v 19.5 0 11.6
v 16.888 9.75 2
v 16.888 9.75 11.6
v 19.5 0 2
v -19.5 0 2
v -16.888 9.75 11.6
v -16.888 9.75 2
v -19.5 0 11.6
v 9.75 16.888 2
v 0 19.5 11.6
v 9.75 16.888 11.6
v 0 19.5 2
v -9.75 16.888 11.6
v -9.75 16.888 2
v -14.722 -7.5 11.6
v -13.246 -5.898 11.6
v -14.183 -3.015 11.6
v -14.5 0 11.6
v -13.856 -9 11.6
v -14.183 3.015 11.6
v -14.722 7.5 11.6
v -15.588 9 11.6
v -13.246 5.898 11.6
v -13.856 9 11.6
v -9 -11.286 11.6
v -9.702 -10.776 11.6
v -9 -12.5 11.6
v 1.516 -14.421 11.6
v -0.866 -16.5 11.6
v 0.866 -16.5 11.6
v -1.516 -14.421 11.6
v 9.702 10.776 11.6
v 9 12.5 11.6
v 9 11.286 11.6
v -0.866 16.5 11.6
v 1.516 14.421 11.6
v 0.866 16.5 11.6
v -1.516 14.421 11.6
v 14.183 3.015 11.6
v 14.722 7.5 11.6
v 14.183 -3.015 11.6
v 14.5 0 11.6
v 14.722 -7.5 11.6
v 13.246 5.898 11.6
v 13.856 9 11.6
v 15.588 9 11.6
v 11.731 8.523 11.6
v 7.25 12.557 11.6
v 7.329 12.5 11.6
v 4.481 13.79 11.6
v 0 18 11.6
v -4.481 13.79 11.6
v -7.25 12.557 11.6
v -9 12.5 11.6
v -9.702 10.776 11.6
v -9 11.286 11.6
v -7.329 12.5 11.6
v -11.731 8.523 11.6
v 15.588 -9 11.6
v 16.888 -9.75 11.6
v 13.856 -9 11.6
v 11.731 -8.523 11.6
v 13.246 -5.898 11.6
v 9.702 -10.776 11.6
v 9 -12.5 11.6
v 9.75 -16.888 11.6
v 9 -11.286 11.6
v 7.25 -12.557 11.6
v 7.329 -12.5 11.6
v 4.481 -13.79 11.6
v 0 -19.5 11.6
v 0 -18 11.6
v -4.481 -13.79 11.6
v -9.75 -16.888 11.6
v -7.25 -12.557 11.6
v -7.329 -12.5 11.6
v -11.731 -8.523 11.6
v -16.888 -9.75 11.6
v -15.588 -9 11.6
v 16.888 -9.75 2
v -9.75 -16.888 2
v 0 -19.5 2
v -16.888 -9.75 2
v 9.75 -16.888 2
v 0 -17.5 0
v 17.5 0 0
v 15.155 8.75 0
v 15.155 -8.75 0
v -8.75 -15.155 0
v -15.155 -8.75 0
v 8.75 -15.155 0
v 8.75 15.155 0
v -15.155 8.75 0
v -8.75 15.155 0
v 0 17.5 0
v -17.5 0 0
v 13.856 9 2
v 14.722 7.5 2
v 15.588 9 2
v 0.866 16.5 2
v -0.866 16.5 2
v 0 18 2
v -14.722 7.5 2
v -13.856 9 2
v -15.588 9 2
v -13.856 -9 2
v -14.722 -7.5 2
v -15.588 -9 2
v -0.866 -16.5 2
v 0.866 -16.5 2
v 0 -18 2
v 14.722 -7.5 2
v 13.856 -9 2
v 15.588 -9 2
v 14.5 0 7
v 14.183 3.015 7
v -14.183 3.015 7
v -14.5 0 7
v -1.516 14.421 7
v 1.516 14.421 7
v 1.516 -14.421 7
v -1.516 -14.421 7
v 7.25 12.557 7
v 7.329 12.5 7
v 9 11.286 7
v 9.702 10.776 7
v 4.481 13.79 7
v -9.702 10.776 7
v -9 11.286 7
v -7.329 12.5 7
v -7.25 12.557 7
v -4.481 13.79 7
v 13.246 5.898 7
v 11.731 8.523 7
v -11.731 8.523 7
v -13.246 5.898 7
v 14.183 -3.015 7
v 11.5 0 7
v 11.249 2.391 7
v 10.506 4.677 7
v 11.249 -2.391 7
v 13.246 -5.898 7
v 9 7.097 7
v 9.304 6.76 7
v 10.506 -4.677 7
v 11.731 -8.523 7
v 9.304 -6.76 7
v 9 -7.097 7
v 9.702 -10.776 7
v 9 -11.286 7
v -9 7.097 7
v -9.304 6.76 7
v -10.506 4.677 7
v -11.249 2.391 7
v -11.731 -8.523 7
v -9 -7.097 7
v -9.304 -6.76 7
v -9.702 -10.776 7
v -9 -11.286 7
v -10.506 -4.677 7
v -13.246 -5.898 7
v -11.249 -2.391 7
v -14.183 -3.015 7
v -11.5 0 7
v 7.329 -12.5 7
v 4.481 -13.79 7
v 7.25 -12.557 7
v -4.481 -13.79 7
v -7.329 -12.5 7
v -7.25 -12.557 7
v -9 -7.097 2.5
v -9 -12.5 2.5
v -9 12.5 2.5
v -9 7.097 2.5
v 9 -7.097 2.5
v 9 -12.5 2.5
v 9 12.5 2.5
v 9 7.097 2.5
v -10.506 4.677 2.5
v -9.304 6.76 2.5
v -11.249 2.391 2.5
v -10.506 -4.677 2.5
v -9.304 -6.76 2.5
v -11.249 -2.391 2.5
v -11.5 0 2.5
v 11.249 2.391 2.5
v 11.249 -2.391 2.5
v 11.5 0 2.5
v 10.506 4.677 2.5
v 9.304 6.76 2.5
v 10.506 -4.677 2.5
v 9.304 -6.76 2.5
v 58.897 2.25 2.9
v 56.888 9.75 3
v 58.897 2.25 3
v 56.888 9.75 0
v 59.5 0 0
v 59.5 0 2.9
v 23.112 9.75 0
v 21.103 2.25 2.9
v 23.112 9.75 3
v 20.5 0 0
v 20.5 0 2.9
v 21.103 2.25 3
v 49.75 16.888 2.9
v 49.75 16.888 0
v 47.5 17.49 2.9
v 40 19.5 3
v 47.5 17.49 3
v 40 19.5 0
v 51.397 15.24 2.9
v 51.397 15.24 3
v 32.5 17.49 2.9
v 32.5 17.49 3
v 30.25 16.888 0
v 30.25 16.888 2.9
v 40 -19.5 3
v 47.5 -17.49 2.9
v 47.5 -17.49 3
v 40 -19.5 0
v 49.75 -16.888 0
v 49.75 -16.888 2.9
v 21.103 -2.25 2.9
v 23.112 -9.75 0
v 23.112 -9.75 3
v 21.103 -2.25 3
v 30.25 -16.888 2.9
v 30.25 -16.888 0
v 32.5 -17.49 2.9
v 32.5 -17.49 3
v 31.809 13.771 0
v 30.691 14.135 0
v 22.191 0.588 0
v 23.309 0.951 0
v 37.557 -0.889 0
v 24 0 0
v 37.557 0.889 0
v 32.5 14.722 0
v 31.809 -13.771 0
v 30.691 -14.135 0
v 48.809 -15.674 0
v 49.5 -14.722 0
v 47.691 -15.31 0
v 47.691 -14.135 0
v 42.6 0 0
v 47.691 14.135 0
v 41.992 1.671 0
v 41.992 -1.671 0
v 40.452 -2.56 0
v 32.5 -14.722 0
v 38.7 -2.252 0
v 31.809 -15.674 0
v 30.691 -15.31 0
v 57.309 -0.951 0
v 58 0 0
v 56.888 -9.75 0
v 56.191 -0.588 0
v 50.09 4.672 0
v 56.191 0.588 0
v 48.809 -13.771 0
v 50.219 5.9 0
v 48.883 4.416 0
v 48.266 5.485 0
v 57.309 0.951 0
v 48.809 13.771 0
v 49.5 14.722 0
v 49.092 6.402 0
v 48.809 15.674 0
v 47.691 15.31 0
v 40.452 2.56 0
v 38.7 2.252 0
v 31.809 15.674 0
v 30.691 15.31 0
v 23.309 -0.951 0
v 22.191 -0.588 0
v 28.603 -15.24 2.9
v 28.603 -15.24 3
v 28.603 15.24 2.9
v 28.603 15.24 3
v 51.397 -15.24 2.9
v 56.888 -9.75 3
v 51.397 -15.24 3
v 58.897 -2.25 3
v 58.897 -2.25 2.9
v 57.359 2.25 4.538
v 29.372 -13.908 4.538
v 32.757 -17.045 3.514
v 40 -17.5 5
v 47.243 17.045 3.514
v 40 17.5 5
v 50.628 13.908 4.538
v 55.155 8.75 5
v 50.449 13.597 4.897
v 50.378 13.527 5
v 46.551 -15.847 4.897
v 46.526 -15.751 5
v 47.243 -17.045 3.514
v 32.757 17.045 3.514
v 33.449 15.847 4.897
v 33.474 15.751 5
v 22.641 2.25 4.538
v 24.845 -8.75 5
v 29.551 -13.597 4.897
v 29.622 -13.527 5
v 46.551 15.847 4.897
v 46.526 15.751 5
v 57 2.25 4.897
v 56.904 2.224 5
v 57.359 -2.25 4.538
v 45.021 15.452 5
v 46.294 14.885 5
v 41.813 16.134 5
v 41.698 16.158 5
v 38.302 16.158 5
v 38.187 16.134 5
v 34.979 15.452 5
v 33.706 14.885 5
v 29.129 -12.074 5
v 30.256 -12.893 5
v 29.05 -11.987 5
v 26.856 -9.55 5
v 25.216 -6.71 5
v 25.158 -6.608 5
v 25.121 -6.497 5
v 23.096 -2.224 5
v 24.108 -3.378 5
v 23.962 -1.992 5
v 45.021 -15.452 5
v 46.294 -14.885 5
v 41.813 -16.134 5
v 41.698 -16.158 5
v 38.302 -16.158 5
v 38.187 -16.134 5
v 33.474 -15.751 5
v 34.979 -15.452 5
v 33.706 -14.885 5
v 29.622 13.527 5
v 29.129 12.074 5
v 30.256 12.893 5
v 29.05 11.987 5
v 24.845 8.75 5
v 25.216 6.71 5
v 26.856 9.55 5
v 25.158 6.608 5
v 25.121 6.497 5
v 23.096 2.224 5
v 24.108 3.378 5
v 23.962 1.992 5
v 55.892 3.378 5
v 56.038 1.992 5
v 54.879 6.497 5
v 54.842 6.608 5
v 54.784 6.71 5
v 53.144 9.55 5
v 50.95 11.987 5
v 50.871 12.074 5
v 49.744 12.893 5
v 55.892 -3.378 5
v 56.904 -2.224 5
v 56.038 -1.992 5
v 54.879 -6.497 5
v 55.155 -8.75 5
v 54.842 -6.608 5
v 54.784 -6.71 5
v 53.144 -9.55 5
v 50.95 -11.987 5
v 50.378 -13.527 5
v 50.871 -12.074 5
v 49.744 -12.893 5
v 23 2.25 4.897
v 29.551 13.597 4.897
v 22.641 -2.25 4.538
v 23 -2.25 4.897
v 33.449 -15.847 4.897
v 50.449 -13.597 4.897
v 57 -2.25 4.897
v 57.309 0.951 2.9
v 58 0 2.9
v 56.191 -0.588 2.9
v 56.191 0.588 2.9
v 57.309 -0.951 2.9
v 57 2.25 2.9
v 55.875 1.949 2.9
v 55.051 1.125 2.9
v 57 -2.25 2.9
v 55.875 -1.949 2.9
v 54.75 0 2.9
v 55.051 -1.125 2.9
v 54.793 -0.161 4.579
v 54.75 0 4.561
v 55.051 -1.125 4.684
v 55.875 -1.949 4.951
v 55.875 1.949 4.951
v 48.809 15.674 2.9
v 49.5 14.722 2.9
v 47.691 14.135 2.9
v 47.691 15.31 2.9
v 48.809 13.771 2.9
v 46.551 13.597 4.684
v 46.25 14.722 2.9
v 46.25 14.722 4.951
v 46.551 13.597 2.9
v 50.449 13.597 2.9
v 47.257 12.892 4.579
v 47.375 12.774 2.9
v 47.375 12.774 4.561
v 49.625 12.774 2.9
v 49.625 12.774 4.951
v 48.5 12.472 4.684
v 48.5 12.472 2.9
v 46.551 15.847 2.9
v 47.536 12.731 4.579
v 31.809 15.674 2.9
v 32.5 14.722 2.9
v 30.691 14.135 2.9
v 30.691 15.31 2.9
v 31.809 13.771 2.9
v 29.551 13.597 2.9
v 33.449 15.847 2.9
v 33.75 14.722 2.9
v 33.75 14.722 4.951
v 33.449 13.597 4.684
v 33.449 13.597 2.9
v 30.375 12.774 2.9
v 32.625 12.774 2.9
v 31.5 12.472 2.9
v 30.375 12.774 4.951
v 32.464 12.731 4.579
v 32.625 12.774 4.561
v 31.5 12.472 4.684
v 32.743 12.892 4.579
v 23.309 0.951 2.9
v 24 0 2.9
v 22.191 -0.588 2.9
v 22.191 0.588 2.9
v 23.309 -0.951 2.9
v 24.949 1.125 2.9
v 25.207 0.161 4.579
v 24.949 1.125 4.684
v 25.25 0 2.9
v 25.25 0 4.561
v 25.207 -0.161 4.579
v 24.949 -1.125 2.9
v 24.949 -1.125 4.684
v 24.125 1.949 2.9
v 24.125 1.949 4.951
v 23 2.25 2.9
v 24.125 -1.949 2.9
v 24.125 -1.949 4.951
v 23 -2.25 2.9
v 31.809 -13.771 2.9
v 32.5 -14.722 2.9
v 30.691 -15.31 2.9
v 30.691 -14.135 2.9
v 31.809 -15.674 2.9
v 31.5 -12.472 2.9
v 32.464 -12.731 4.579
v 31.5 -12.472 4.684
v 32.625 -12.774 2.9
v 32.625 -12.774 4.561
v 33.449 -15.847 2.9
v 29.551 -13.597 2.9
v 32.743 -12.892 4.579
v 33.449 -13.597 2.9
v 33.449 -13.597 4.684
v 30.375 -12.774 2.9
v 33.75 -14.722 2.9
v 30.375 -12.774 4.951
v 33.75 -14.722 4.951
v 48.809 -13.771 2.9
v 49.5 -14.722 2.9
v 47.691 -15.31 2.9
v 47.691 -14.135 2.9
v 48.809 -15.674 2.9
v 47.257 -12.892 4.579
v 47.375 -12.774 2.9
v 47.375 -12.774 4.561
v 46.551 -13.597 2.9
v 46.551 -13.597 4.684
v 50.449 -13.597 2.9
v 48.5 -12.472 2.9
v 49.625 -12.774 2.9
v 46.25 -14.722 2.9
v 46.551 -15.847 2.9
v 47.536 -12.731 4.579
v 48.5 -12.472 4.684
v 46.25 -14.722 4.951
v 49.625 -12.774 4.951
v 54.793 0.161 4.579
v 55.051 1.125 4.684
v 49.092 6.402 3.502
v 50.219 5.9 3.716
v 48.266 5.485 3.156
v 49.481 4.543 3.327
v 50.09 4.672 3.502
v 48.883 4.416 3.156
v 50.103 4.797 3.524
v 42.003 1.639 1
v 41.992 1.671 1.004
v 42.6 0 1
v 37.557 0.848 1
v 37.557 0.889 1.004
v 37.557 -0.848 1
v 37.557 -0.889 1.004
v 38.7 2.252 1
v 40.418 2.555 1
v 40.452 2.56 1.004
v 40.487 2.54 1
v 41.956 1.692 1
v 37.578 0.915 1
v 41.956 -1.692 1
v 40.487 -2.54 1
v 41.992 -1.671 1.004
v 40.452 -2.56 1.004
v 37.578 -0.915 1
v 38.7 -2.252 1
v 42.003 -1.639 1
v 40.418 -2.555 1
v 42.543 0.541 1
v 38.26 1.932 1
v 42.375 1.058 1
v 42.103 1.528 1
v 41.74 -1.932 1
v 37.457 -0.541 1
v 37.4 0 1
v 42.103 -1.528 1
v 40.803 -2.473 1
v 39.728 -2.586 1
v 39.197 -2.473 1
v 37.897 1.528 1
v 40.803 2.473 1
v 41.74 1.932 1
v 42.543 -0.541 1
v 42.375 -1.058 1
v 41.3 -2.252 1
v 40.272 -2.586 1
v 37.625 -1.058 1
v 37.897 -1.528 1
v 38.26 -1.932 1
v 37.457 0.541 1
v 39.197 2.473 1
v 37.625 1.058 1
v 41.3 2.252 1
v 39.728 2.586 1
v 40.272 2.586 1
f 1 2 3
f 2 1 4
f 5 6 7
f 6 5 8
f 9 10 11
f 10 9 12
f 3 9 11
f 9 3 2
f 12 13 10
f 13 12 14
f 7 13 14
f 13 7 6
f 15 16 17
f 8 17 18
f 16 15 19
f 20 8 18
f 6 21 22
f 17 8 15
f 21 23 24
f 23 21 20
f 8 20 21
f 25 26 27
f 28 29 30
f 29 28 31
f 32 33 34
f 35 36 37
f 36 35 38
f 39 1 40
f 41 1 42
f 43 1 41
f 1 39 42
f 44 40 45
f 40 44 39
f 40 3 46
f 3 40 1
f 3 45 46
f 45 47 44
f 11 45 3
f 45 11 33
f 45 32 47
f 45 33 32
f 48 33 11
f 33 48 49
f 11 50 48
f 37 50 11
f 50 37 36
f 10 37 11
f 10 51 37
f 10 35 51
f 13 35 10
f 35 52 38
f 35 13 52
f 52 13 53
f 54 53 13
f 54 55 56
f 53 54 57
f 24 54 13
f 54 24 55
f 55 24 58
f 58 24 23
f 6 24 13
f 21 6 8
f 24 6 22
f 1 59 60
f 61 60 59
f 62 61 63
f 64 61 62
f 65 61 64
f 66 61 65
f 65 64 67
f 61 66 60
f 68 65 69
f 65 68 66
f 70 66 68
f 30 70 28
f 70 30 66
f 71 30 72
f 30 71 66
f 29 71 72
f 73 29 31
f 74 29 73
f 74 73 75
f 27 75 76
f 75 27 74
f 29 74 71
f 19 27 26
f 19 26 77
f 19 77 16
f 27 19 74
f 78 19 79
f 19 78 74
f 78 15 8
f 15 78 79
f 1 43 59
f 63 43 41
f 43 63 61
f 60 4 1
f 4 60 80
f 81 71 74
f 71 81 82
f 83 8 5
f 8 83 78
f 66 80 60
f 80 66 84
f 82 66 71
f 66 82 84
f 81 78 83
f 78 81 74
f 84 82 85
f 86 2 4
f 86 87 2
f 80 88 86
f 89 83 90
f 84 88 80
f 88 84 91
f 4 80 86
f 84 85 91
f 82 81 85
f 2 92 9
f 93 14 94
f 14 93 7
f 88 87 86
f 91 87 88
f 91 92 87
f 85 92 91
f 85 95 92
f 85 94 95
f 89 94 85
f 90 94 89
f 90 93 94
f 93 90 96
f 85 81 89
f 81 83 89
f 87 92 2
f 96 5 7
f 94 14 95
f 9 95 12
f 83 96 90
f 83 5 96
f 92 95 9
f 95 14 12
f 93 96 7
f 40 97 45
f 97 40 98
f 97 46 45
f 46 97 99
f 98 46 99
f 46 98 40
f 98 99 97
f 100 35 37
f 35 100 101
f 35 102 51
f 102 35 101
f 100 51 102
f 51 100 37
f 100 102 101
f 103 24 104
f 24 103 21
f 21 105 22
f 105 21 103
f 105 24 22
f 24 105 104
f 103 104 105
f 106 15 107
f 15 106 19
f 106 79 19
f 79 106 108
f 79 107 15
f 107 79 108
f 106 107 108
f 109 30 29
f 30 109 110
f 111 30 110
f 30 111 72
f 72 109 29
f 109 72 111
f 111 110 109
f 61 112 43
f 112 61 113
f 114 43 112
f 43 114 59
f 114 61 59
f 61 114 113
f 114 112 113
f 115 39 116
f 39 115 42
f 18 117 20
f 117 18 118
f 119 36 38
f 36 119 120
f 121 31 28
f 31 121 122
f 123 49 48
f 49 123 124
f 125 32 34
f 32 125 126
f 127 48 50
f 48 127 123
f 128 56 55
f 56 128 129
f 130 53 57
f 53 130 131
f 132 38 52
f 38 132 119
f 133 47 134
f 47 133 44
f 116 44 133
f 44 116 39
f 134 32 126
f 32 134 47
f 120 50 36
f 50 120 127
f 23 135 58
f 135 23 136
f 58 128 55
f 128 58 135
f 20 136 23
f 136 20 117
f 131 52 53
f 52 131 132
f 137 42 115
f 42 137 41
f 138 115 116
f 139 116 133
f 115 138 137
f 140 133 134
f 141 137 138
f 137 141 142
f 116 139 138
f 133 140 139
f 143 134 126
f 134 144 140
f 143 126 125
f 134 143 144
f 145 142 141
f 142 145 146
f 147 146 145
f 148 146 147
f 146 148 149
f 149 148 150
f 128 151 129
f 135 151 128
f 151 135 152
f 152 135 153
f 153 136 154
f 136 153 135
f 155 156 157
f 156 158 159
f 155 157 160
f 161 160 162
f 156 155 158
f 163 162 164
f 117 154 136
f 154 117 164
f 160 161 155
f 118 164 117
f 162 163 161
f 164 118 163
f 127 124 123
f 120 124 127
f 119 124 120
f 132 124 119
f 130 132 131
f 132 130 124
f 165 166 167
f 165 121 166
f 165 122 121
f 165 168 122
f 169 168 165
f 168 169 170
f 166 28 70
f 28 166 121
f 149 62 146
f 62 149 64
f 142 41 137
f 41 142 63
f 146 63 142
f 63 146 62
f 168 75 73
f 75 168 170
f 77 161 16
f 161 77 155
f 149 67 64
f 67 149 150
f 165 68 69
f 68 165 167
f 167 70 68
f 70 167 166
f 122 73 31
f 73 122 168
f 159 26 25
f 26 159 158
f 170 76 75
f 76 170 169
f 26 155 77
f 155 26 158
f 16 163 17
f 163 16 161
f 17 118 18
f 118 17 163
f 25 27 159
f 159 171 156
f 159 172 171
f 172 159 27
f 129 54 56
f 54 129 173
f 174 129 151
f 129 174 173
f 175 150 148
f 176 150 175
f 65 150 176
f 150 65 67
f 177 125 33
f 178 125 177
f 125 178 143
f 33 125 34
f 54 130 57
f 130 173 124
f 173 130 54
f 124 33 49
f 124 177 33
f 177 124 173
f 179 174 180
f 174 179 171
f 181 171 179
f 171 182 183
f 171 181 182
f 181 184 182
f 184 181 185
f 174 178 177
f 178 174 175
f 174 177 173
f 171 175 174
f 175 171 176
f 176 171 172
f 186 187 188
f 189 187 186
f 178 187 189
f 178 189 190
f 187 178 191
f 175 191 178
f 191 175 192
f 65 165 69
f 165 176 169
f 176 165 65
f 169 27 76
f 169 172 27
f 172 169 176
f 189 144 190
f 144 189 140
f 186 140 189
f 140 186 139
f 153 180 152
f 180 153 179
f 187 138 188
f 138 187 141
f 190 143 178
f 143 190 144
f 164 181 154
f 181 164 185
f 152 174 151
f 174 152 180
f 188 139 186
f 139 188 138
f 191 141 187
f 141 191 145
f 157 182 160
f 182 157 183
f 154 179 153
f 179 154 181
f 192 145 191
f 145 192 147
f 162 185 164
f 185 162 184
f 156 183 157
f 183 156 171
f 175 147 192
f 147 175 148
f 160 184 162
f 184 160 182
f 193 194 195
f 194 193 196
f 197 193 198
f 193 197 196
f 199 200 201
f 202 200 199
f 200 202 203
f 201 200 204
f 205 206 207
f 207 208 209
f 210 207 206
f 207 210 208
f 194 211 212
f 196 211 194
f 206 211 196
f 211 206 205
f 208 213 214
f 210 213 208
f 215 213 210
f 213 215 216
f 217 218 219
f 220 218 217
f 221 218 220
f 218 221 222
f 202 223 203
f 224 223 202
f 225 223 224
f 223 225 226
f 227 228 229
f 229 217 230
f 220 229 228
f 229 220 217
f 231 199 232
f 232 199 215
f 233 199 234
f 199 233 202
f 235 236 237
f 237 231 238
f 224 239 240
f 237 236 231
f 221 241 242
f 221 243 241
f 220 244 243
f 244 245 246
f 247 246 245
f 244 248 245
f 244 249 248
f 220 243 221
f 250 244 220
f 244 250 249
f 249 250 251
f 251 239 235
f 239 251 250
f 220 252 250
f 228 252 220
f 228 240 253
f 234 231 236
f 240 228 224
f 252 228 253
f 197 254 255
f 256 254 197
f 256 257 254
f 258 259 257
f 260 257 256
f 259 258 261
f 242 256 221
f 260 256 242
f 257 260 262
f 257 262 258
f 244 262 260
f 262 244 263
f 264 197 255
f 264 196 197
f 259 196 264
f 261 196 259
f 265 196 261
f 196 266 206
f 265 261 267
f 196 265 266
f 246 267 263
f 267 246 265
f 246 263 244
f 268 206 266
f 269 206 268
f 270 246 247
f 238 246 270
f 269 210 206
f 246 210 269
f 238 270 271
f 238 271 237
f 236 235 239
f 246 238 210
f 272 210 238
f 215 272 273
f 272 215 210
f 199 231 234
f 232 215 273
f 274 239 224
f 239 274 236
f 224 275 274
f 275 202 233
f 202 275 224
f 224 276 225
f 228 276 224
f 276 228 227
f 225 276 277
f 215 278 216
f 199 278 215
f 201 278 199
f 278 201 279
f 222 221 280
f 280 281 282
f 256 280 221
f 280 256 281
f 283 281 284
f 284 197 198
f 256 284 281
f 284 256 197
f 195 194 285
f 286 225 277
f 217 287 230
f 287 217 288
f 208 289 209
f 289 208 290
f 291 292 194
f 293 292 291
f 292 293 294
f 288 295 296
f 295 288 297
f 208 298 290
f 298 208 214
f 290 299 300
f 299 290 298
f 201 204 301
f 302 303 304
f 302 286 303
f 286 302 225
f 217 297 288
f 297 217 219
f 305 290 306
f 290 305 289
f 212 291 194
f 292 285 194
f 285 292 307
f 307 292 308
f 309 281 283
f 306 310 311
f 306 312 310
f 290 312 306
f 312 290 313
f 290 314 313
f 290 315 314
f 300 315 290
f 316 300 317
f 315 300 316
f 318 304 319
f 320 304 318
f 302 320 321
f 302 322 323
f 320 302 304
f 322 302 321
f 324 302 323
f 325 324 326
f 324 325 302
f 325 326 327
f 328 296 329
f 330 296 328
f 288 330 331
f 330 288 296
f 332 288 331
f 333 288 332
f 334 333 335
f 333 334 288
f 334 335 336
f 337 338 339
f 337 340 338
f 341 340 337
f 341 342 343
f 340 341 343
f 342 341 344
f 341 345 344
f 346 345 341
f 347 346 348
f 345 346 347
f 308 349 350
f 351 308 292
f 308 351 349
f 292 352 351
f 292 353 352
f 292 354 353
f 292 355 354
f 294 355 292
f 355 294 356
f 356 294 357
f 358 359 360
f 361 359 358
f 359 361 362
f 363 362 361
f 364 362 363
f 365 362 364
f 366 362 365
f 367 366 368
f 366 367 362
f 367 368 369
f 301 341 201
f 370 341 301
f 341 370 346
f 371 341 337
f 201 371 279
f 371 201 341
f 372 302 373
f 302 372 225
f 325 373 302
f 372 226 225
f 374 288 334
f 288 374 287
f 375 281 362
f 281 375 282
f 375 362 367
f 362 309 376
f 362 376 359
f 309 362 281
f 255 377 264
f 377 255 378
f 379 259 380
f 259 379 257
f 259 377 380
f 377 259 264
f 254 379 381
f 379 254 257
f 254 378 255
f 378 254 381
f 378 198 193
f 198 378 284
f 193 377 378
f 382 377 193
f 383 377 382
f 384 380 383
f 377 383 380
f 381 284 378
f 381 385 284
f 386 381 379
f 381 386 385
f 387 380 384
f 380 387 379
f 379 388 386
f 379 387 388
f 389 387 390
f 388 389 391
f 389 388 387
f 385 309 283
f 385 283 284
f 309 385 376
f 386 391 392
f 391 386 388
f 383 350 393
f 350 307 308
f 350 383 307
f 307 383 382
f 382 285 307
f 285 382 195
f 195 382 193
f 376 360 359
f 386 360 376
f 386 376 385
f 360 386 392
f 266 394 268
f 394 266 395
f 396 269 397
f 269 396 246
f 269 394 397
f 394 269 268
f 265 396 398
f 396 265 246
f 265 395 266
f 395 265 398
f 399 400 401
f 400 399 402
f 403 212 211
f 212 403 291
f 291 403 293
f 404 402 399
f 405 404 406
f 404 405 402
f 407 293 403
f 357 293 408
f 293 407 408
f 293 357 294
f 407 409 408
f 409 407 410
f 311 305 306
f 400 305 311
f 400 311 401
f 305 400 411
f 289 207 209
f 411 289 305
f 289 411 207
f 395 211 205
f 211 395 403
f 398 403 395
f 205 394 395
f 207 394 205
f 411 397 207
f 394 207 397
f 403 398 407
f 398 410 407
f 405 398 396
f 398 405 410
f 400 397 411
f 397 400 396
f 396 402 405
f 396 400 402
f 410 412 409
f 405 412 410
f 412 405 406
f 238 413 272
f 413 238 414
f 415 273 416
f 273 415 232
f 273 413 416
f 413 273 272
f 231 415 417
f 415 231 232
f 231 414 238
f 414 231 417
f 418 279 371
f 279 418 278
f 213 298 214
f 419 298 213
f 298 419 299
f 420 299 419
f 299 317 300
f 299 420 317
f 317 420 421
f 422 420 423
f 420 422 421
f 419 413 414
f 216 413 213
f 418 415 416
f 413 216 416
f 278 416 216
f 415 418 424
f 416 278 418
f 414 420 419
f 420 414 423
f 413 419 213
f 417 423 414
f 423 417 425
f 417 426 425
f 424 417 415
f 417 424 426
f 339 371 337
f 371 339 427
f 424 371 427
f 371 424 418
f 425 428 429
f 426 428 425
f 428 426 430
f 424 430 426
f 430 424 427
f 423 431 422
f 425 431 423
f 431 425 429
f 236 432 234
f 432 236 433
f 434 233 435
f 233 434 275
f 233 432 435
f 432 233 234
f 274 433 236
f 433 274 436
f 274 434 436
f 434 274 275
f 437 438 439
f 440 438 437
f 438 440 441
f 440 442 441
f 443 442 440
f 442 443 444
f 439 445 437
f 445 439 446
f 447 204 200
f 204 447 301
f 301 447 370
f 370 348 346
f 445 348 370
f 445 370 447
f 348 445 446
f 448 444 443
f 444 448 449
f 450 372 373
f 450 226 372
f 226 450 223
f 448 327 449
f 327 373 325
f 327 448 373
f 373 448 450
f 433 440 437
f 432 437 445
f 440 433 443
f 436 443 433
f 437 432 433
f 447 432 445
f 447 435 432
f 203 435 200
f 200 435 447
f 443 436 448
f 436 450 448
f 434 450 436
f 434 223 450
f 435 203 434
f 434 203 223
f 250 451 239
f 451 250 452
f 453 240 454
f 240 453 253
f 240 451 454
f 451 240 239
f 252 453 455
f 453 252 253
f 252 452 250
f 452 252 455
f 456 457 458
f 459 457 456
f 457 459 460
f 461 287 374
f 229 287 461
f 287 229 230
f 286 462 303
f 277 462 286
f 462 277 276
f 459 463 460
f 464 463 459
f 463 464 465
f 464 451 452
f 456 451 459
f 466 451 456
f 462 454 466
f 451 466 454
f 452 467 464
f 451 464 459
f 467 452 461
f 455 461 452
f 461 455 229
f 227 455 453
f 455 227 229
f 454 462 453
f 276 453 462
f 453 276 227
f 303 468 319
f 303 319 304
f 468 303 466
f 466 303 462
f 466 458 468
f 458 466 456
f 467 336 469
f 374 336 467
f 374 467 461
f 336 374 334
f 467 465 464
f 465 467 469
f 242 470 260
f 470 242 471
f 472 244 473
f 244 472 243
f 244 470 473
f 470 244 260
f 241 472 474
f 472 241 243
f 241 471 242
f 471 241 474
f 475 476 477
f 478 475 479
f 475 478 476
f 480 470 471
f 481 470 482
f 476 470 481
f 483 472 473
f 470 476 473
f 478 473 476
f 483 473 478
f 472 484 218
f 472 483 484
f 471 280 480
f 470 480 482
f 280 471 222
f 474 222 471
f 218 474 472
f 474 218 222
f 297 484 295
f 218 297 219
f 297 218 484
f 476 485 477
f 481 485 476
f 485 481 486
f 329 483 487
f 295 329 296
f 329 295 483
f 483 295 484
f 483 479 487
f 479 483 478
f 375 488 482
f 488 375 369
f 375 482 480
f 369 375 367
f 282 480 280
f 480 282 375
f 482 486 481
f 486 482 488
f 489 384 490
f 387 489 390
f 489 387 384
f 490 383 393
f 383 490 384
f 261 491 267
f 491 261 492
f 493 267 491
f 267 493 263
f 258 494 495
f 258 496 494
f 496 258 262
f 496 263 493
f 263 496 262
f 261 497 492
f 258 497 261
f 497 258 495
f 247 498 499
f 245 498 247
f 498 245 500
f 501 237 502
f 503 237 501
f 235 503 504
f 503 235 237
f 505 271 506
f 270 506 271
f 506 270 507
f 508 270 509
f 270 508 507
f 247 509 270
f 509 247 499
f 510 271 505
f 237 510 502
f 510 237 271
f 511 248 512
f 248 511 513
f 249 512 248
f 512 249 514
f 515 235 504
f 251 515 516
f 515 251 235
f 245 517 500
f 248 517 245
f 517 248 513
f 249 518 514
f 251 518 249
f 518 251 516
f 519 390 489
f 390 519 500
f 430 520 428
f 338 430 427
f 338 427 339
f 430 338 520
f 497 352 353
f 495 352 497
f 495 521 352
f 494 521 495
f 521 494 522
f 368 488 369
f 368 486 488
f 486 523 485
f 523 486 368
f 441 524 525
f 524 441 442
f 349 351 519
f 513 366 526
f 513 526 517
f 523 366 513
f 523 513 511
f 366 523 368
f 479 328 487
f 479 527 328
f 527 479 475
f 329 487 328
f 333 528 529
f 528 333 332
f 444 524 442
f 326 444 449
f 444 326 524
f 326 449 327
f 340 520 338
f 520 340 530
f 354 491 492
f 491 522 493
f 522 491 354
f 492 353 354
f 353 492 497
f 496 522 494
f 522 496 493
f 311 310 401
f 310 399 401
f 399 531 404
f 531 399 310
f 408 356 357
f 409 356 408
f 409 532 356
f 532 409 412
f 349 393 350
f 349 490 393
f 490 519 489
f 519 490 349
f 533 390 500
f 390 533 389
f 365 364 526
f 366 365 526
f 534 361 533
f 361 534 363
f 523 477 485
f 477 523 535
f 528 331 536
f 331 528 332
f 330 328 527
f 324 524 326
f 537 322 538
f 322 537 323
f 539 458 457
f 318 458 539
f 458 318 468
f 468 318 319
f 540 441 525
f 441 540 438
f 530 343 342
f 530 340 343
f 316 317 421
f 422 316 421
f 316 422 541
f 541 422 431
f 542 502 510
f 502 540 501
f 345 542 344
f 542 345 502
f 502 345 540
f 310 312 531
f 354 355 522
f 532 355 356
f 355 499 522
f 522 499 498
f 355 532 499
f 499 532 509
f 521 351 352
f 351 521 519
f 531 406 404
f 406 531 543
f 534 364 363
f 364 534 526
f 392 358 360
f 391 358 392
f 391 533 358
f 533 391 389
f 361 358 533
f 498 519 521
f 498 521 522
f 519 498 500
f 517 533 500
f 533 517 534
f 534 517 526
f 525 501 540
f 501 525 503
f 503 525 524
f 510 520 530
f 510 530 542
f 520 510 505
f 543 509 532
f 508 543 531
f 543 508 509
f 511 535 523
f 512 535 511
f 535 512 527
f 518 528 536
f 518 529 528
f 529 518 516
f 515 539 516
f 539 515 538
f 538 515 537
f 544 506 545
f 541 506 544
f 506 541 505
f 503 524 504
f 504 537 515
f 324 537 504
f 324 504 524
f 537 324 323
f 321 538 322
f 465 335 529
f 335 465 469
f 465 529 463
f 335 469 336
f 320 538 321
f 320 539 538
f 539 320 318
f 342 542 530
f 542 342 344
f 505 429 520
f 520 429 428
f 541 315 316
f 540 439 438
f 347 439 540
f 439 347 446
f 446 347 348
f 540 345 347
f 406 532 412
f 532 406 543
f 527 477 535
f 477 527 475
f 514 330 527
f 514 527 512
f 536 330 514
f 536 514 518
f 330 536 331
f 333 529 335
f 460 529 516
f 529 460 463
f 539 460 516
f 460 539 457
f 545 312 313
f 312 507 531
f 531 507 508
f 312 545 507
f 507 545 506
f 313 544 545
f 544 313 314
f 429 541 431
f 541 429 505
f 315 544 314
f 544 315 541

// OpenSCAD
// Case for TritiLED V2.x

layout = "PRINTING";
//layout = "EXPLODED";

pcb_d = 28+1;
pcb_h = 5;
pcb_thickness = 1.6;
wire_gap = 3;

case_thickness = 2;

top_len = 5 + 1.6 + 3;
top_d = pcb_d + 2*case_thickness + 6;

cap_len = 5;
cap_hole_d1 = 5.2;
cap_hole_d2 = 40;

switch_offset = 10.75;
switch_d = 2.1;

bevel_height = 2;

epsilon = 0.1;

module chanzon_3W_LED()
{
  dome_d = 5;
  base_d = 7;
  base_h = 2;
  chip_size = 1.8;
  chip_thickness = 0.5;
  base_thickness = 1;
  difference(){
    color("white") cylinder($fn=23, d = base_d, h = base_h);
    translate([0, 0, base_thickness]){
      cylinder($fn=23, d = dome_d, h = base_h);
    }
  }
  translate([0, 0, base_h]){
    %sphere($fn=23, d = dome_d);
  }
  translate([-chip_size/2, -chip_size/2, base_thickness]){
    color("cyan") cube([chip_size, chip_size, chip_thickness]);
  }
}

module tritiled_pcb()
{
  color("purple") cylinder(d = pcb_d, h = pcb_thickness);
  translate([0, 0, pcb_thickness]){
    chanzon_3W_LED();
  }
}


module pcb_clearance(len = pcb_thickness)
{
  cylinder(d = pcb_d, h = len);

  batt_d = 23;
  batt_thickness = 4.5;
  batt_holder_w = 18;
  batt_holder_len = 25;

  translate([-batt_holder_w/2, -batt_holder_len/2, -batt_thickness]){
    cube ([batt_holder_w, batt_holder_len, len+2*epsilon]);
  }
  translate([0, 0, -batt_thickness]){
    cylinder(d = batt_d, h = batt_thickness);
  }

}

module cap(switch_hole = true)
{
  difference(){
    union(){
      rotate([0, 0, 0]){
        cylinder($fn = 12,
                 d = top_d,
                 h = cap_len - bevel_height);
      }
      translate([0, 0, cap_len - bevel_height]){
        rotate([0, 0, 0]){
          cylinder($fn = 12,
                   d1 = top_d,
                   d2 = top_d - 2 * bevel_height,
                   h = bevel_height);
        }
      }
    }

    if (switch_hole){
      rotate([0, 0, 360/12]){
        translate([switch_offset, 0, -epsilon]){
          cylinder($fn = 5, d = switch_d, h = cap_len);
        }
      }
    }


    translate([0, 0, -epsilon]){
      cylinder(d = cap_hole_d1,
               h = cap_len + 2*epsilon);
    }

    translate([0, 0, 1]){
      cylinder(d2 = cap_hole_d2,
               d1 = cap_hole_d1,
               h = cap_len + epsilon);
    }
    

    N = 6;
    screw_ring_d = (top_d + pcb_d)/2;
    screw_clearance_d = 4.5;
    screw_sink = 2.1;
    pilot_d = 2;
    for (th = [0:N]){
      translate([screw_ring_d/2 * cos(360*th/N + 0),
                 screw_ring_d/2 * sin(360*th/N + 0),
                 0]){
        translate([0, 0, -epsilon]){
          cylinder(d = pilot_d, h = cap_len + 2*epsilon);
        }
        translate([0, 0, cap_len - screw_sink]){
          rotate([0, 0, 360*th/N]){
            hull(){
              cylinder($fn=12, d = screw_clearance_d, h = cap_len);
              translate([4, 0, 0])
              cylinder($fn=12, d = screw_clearance_d, h = cap_len);
            }
          }
        }
      }
    }
  }
}

module bottom()
{
  difference(){
    union(){
      translate([0, 0, bevel_height]){
        rotate([0, 0, 0]){
          cylinder($fn = 12,
                   d = top_d,
                   h = top_len);
        }
      }
      translate([0, 0, 0]){
        rotate([0, 0, 0]){
          cylinder($fn = 12,
                   d2 = top_d,
                   d1 = top_d - 2*bevel_height,
                   h = bevel_height);
        }
      }
    }

    N = 6;
    screw_ring_d = (top_d + pcb_d)/2;
    pilot_d = 2;
    for (th = [0:N]){
      translate([screw_ring_d/2 * cos(360*th/N+30),
                 screw_ring_d/2 * sin(360*th/N+30),
                 case_thickness]){
        rotate([0, 0, 360*th/N+30]){
          cylinder($fn=3, d = pilot_d, h = top_len*2);
        }
      }
    }

    translate([0, 0, top_len + bevel_height - 1.6 - 3]){
      pcb_clearance(len = top_len*2);
    }
  }
}

if (layout == "PRINTING"){
  bottom();
  translate([40, 0, 0]){
    cap();
  }
} else {

  translate([-20, 0, 0])
  rotate([0, 90, 0]){
    bottom();
    translate([0, 0, 40]){
      cap();
    }
        translate([0, 0, 25]){
      tritiled_pcb();
    }
  }
}
